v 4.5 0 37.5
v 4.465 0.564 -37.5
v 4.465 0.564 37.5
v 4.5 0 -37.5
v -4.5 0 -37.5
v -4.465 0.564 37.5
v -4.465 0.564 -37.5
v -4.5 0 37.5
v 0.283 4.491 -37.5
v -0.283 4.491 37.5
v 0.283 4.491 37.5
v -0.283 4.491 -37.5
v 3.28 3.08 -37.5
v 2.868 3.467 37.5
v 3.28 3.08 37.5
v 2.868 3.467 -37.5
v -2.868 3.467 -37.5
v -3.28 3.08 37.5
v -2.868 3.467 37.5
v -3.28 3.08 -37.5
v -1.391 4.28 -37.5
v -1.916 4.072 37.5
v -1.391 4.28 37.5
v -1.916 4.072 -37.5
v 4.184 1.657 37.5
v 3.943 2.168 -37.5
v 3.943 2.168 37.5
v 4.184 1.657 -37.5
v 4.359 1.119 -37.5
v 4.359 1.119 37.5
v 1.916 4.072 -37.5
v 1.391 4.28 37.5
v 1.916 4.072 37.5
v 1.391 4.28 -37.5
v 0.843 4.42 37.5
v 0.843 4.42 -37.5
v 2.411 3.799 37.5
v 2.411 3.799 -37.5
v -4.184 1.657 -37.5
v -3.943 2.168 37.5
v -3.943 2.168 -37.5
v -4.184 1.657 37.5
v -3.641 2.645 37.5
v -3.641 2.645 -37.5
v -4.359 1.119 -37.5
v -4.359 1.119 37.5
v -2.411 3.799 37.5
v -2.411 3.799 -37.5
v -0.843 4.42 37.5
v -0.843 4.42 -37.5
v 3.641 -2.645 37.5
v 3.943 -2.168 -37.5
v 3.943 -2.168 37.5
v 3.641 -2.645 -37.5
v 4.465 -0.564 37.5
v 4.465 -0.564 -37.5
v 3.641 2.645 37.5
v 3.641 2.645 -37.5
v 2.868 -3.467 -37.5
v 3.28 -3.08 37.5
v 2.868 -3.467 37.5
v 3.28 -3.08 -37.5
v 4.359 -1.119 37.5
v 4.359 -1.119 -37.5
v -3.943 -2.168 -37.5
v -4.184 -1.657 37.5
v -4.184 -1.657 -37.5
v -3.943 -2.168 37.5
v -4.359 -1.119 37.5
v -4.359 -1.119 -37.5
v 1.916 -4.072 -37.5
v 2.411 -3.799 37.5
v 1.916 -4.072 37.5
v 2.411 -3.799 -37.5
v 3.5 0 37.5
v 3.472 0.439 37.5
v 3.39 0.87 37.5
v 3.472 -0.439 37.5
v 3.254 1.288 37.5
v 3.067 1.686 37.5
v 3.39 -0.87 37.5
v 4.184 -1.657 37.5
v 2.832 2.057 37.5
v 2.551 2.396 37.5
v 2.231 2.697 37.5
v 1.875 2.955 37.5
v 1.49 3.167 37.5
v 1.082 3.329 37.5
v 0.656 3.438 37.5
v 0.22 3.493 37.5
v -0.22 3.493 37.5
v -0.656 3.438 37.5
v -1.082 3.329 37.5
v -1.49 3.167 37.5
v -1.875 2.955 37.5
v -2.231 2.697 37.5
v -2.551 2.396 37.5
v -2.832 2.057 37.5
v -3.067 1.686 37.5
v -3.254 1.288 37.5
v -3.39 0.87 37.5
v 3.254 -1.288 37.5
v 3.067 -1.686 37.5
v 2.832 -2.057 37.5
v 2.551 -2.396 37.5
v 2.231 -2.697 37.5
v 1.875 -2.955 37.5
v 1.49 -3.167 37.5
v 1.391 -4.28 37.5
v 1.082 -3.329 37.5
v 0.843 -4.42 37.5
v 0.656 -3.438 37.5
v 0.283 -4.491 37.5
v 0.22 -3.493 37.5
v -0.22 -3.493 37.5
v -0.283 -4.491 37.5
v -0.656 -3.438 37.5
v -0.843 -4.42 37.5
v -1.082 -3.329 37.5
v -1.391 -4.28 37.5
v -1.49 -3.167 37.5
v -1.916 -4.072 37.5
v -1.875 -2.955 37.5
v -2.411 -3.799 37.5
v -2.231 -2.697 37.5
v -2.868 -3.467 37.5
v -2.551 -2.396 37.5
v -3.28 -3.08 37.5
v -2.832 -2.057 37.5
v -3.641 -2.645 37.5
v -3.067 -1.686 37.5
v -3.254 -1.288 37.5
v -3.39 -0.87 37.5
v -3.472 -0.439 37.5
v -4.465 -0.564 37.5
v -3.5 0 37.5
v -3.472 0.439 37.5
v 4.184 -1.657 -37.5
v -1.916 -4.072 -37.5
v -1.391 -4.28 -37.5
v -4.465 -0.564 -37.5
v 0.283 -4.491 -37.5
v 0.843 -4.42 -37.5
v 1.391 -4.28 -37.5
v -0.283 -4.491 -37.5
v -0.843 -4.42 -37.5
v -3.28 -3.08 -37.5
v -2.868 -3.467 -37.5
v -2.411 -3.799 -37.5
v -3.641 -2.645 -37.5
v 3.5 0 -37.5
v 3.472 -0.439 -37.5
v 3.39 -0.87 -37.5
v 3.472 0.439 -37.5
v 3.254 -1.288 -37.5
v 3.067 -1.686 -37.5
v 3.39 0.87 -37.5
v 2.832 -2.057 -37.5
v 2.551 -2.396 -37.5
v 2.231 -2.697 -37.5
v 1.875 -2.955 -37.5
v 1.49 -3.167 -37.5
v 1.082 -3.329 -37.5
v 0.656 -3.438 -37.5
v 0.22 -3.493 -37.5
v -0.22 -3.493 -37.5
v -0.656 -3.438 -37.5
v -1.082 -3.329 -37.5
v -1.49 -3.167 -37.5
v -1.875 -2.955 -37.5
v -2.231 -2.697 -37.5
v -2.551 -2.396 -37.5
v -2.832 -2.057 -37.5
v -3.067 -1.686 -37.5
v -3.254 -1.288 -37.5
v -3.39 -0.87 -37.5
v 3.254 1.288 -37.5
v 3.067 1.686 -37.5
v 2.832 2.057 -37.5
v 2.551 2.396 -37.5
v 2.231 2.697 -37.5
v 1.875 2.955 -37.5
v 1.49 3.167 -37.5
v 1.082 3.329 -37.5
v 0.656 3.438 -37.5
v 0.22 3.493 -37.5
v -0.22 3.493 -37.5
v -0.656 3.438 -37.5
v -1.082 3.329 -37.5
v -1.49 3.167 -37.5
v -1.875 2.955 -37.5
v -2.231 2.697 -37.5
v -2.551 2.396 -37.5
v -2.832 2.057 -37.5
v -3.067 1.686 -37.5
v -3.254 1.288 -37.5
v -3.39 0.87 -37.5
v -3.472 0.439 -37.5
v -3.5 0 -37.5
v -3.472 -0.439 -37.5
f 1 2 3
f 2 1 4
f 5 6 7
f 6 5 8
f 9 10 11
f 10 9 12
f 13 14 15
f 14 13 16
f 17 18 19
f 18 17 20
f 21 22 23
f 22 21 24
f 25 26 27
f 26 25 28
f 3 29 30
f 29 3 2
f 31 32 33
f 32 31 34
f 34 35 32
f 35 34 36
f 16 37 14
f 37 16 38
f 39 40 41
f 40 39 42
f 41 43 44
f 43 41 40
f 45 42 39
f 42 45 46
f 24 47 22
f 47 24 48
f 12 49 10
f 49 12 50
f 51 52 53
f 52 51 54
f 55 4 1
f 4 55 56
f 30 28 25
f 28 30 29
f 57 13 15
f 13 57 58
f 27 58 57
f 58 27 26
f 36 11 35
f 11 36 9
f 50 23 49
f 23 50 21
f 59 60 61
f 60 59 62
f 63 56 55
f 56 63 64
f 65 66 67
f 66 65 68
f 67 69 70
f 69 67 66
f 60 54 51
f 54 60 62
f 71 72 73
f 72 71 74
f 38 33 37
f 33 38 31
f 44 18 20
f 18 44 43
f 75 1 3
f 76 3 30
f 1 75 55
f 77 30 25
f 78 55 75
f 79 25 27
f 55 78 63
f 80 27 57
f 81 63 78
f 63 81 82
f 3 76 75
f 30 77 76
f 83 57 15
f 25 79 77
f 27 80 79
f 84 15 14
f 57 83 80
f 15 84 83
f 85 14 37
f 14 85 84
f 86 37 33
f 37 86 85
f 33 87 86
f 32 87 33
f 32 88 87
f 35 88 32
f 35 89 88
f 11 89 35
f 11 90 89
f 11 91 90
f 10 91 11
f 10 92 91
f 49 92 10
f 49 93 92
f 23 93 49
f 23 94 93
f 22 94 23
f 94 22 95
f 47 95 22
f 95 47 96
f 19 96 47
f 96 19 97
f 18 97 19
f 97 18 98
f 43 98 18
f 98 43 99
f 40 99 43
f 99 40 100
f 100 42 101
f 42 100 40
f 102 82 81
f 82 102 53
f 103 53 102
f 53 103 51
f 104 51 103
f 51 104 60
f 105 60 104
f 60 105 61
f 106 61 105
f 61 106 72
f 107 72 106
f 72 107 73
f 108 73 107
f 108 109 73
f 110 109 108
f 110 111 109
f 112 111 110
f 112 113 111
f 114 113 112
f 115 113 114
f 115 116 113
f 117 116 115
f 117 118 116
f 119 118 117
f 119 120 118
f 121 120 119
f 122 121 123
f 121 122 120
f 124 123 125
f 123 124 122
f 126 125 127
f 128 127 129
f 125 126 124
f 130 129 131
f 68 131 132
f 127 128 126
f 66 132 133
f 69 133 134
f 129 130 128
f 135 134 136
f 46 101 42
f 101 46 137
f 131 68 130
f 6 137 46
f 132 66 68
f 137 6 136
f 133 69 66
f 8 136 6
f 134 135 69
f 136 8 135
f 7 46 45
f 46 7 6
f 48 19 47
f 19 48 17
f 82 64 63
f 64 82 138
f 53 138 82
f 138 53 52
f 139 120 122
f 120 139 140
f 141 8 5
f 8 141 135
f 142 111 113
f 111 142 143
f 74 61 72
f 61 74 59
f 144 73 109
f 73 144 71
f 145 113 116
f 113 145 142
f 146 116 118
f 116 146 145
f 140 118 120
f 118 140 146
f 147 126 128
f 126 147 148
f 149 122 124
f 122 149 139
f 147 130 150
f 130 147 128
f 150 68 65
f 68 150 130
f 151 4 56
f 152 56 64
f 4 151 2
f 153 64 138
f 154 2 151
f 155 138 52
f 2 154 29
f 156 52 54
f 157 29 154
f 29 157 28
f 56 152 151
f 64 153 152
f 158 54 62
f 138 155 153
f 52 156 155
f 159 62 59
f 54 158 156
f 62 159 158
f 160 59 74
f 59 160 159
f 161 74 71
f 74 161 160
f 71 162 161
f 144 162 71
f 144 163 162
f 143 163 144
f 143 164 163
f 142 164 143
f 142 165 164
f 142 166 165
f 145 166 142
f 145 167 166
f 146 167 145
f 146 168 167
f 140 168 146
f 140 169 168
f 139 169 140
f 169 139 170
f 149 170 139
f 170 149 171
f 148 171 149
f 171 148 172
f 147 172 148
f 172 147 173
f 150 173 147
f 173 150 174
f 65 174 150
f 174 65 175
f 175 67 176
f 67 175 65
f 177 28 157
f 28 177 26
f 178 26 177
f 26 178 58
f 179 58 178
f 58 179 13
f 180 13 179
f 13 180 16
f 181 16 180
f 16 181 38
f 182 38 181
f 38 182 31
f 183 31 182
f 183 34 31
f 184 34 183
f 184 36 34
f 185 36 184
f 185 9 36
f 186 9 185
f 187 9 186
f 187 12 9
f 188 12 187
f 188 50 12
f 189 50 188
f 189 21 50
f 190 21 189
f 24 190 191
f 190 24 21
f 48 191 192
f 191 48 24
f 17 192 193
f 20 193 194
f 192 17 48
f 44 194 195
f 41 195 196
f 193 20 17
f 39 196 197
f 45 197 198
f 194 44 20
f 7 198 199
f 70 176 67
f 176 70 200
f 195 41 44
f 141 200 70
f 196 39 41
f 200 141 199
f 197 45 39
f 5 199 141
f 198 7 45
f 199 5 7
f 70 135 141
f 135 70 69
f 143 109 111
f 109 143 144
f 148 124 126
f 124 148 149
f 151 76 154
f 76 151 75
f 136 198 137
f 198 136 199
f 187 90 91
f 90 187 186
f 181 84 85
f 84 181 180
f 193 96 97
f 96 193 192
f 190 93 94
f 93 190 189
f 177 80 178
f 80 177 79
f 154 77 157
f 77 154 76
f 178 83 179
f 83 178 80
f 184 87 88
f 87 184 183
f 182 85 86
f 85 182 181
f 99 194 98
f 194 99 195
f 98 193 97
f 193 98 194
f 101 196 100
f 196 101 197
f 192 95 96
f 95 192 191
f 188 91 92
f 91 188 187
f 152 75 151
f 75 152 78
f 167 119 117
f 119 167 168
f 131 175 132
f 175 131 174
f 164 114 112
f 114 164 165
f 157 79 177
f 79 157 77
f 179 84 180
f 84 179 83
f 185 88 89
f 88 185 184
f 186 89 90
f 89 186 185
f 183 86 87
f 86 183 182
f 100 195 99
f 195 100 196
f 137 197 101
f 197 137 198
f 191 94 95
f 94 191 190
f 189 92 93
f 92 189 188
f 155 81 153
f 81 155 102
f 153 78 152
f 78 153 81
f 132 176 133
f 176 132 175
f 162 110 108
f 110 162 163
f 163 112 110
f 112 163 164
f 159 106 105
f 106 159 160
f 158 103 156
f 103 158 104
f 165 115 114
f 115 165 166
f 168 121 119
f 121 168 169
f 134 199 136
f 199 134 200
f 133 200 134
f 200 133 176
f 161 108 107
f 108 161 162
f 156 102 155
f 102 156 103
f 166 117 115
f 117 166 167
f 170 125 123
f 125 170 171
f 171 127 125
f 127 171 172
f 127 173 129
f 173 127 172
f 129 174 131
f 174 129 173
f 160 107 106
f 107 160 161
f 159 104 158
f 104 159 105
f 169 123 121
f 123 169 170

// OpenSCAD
$fn = 50;


difference() {
	union() {
		translate(v = [0, 0, -37.5000000000]) {
			cylinder(h = 75, r = 4.5000000000);
		}
	}
	union() {
		translate(v = [0, 0, -100.0000000000]) {
			cylinder(h = 200, r = 3.5000000000);
		}
	}
}
